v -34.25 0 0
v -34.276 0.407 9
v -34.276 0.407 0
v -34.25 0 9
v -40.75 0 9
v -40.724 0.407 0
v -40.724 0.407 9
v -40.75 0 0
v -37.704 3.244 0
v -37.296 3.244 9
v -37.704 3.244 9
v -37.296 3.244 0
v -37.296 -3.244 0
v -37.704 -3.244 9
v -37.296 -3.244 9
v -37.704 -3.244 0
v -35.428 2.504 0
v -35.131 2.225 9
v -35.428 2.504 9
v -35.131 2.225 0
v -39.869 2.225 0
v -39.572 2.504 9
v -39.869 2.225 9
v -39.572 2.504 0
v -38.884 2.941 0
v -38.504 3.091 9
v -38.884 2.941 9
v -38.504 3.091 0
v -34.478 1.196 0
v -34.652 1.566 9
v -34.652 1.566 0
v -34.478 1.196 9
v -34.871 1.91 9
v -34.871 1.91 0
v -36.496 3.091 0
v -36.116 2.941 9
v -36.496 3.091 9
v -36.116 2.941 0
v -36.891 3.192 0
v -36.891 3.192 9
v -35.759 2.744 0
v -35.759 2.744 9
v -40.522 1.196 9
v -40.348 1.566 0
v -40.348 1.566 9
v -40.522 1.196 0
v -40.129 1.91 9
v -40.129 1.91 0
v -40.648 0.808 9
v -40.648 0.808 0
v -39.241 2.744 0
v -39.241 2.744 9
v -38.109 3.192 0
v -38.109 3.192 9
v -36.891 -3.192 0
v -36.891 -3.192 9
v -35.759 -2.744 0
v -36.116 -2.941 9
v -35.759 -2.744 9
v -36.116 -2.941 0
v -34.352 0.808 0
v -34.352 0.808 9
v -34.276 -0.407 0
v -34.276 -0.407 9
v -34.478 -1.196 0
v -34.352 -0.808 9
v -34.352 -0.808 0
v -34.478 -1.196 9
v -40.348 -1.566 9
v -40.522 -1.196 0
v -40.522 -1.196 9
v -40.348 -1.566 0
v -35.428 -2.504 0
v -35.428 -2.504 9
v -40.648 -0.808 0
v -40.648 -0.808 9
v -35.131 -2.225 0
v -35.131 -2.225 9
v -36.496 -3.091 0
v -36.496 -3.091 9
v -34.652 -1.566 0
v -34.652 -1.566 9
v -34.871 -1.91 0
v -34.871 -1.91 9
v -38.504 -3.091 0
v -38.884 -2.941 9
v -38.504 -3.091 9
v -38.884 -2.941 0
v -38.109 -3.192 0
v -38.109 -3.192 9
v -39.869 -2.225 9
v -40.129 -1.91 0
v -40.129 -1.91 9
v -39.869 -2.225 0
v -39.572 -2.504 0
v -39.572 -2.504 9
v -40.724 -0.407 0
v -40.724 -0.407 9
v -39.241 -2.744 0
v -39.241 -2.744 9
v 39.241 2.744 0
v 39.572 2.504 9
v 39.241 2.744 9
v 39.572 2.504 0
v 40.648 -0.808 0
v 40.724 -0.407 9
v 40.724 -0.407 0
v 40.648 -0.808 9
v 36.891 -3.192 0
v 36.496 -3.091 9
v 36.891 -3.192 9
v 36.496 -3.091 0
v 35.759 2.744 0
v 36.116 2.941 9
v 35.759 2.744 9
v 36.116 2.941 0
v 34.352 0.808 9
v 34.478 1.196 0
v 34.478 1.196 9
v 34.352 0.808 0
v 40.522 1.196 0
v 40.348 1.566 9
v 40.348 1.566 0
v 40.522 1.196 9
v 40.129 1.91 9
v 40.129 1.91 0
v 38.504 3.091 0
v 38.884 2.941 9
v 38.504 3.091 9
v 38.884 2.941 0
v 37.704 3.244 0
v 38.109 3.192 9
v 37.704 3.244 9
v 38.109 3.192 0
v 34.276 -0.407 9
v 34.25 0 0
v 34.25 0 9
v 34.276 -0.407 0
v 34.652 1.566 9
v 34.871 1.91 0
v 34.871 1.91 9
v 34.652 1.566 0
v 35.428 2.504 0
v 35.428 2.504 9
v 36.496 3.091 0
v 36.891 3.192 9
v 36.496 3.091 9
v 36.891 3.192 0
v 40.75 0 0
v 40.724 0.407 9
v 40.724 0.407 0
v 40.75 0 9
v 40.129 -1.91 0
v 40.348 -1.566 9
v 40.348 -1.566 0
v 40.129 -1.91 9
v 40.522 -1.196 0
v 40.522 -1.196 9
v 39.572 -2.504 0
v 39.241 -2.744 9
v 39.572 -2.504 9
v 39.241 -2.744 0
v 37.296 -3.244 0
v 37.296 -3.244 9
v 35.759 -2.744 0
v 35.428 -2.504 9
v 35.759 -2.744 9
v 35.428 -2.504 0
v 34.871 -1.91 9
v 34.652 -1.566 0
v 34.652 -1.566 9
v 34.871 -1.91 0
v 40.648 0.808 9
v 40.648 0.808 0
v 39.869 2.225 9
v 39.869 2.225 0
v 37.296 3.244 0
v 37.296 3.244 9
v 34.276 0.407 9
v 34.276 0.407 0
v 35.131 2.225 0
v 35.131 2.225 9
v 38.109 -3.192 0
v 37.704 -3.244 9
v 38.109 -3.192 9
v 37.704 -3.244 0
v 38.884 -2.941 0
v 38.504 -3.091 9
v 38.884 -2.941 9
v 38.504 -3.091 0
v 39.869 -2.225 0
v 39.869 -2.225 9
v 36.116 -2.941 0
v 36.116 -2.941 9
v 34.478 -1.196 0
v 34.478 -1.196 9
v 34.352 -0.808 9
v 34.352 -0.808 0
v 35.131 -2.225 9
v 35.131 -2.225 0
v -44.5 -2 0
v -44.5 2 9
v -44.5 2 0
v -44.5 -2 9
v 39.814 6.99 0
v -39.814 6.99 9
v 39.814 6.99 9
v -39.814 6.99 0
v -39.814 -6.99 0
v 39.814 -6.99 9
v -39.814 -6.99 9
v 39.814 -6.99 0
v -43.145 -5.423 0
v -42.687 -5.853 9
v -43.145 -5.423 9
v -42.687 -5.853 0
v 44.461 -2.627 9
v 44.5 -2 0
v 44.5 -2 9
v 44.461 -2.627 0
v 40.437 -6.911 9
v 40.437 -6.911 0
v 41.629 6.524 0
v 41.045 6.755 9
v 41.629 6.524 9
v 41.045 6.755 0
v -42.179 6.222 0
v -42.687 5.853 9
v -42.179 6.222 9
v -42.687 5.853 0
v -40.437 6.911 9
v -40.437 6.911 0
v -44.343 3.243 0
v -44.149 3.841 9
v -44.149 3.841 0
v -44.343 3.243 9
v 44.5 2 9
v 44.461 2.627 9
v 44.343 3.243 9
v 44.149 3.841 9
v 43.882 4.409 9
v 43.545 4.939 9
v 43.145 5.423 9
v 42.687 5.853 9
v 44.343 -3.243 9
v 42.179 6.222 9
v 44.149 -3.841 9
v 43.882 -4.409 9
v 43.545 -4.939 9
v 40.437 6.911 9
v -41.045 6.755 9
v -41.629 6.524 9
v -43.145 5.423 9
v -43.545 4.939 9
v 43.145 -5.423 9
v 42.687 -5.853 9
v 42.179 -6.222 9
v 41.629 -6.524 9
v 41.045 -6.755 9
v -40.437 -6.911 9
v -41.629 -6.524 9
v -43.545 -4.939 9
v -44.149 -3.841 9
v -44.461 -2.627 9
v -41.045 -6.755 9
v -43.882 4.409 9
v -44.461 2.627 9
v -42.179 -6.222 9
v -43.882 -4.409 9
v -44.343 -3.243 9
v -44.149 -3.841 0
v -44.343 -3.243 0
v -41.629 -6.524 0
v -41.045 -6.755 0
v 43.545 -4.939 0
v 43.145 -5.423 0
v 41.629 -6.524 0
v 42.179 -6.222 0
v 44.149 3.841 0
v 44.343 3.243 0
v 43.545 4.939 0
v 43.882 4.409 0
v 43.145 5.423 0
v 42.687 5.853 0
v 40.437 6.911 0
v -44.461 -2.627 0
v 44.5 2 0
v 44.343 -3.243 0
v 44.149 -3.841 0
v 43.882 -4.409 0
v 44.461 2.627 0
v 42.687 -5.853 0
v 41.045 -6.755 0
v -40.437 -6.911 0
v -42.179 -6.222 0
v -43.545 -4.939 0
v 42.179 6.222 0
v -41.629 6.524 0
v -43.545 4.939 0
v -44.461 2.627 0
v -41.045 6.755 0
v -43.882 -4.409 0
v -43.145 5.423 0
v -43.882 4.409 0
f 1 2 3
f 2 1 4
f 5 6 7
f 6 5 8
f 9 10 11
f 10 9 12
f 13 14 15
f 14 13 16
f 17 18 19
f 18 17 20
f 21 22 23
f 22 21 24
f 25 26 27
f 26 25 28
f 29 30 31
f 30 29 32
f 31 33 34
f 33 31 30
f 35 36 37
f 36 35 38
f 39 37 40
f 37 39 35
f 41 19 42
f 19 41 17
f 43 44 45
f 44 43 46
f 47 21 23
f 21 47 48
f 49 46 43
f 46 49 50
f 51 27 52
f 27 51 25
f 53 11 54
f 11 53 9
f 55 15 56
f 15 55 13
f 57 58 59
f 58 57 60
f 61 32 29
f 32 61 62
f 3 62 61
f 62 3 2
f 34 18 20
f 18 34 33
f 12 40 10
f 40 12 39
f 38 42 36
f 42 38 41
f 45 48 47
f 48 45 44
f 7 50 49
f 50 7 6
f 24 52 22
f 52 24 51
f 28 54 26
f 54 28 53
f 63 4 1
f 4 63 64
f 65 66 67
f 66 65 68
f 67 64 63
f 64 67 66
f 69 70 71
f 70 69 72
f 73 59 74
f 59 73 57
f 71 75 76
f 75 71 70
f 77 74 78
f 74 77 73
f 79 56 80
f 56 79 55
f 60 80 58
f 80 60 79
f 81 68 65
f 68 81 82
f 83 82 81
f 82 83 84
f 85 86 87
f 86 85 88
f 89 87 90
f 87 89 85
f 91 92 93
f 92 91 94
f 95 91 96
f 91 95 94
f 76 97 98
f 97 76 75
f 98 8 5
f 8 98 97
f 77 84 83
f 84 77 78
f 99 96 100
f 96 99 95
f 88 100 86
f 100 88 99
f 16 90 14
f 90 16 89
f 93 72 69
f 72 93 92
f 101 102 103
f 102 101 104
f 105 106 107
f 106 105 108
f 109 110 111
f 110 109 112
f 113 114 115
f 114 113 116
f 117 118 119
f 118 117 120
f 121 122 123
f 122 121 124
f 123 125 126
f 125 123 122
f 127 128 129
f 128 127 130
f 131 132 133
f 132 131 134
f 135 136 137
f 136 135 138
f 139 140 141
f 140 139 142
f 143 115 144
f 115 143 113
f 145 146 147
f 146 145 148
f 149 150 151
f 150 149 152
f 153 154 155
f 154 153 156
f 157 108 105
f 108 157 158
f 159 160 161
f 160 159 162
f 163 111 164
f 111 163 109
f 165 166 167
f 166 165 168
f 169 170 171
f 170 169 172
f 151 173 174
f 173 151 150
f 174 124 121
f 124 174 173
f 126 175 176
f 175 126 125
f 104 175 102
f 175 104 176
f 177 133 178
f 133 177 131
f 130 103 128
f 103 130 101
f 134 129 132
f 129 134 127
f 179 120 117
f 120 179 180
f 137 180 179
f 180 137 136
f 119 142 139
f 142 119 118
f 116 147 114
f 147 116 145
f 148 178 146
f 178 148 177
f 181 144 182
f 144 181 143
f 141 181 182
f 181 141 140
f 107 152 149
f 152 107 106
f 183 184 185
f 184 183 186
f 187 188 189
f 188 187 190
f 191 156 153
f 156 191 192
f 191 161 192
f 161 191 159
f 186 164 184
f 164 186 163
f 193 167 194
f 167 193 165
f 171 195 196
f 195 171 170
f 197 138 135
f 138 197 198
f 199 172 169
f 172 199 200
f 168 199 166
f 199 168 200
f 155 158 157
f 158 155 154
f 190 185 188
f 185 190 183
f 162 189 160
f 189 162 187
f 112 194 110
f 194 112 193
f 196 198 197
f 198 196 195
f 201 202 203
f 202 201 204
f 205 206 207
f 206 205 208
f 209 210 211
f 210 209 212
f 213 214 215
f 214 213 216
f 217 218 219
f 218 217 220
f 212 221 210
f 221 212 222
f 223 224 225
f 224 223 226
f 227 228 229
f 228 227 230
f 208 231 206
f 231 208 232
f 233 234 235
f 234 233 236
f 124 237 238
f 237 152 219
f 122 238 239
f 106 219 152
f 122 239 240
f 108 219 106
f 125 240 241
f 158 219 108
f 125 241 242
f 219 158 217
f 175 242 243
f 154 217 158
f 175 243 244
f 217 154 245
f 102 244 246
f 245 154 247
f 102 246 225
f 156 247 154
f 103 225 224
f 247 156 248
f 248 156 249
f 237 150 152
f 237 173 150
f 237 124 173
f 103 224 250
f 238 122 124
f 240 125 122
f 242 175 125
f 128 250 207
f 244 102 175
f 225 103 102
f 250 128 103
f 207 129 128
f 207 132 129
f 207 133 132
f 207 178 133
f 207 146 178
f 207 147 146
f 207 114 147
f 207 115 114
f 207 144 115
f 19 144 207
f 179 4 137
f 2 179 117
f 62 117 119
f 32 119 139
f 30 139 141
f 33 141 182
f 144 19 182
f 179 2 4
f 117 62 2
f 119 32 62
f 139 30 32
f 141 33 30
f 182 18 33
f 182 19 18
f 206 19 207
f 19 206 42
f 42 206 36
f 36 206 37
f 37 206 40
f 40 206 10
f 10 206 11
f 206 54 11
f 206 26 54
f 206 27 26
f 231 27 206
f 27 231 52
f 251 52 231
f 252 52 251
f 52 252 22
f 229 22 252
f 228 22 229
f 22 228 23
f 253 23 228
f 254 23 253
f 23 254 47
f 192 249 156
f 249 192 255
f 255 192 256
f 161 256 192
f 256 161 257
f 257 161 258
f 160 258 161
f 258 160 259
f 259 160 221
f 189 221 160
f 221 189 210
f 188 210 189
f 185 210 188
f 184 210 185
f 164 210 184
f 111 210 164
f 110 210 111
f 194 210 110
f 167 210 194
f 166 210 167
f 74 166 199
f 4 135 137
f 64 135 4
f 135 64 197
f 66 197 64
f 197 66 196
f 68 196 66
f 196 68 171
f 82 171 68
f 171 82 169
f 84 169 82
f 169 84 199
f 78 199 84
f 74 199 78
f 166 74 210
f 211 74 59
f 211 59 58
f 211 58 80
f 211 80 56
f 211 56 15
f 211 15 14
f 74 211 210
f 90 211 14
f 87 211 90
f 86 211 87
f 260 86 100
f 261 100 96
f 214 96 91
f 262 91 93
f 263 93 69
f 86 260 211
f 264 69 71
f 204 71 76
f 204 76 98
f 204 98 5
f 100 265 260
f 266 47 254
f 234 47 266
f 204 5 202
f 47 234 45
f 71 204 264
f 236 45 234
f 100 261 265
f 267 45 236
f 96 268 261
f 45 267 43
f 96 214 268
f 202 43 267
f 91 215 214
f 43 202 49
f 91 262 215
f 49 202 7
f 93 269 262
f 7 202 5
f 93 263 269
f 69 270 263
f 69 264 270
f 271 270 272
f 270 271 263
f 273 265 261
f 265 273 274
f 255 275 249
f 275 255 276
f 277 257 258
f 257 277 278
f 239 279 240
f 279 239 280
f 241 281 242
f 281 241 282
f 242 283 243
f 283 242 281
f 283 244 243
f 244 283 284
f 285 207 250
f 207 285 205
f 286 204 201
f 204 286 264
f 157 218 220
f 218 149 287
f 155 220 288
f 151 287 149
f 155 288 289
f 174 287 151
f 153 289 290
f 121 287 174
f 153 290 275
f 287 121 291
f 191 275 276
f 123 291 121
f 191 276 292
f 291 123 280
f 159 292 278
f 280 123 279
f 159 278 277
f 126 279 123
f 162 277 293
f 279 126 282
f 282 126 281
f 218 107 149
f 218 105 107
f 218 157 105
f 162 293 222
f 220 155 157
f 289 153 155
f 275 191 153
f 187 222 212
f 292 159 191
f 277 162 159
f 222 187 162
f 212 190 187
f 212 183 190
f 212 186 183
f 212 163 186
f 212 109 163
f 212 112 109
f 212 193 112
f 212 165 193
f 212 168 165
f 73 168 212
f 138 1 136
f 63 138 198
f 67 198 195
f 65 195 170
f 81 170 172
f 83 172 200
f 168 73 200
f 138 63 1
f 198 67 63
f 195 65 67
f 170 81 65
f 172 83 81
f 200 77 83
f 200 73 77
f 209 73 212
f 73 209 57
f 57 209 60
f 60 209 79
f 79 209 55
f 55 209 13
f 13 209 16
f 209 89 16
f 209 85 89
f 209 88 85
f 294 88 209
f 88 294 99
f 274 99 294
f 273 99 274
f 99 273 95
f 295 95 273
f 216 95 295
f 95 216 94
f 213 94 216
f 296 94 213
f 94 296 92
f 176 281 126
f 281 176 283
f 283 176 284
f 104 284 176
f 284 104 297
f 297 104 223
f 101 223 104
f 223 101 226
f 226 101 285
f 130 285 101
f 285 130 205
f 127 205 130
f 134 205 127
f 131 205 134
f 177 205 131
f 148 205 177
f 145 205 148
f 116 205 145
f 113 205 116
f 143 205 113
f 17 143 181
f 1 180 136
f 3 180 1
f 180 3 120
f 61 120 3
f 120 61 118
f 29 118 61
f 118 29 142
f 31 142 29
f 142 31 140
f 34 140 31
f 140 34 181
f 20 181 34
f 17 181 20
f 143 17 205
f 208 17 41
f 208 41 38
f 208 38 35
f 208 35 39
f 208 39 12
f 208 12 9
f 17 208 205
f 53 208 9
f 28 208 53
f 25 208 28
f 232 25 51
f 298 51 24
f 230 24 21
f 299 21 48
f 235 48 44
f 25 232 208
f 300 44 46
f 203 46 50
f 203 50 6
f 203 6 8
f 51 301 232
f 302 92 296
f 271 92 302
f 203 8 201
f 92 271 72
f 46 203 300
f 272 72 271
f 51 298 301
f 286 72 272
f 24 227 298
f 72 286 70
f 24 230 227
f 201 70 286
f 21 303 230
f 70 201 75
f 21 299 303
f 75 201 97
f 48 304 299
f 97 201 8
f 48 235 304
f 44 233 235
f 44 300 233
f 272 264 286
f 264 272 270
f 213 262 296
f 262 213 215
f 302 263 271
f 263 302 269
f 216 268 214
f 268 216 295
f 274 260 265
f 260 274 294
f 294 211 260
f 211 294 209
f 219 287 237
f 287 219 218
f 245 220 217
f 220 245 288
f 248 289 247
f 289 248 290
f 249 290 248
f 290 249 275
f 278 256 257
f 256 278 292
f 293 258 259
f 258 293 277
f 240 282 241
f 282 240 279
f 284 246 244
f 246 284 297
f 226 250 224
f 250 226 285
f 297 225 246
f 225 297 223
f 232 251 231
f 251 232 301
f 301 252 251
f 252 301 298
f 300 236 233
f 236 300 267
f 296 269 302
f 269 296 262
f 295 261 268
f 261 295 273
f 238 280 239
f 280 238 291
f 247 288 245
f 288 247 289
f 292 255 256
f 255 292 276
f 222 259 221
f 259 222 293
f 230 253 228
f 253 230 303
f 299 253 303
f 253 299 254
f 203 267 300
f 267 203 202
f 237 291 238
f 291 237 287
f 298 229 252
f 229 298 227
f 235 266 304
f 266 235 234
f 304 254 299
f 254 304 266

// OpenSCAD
$fn = 50;


difference() {
	union() {
		hull() {
			translate(v = [-39.5000000000, 2.0000000000, 0]) {
				cylinder(h = 9, r = 5);
			}
			translate(v = [39.5000000000, 2.0000000000, 0]) {
				cylinder(h = 9, r = 5);
			}
			translate(v = [-39.5000000000, -2.0000000000, 0]) {
				cylinder(h = 9, r = 5);
			}
			translate(v = [39.5000000000, -2.0000000000, 0]) {
				cylinder(h = 9, r = 5);
			}
		}
	}
	union() {
		translate(v = [-37.5000000000, 0.0000000000, -100.0000000000]) {
			cylinder(h = 200, r = 3.2500000000);
		}
		translate(v = [-37.5000000000, 0.0000000000, -100.0000000000]) {
			cylinder(h = 200, r = 3.2500000000);
		}
		translate(v = [37.5000000000, 0.0000000000, -100.0000000000]) {
			cylinder(h = 200, r = 3.2500000000);
		}
		translate(v = [37.5000000000, 0.0000000000, -100.0000000000]) {
			cylinder(h = 200, r = 3.2500000000);
		}
	}
}
